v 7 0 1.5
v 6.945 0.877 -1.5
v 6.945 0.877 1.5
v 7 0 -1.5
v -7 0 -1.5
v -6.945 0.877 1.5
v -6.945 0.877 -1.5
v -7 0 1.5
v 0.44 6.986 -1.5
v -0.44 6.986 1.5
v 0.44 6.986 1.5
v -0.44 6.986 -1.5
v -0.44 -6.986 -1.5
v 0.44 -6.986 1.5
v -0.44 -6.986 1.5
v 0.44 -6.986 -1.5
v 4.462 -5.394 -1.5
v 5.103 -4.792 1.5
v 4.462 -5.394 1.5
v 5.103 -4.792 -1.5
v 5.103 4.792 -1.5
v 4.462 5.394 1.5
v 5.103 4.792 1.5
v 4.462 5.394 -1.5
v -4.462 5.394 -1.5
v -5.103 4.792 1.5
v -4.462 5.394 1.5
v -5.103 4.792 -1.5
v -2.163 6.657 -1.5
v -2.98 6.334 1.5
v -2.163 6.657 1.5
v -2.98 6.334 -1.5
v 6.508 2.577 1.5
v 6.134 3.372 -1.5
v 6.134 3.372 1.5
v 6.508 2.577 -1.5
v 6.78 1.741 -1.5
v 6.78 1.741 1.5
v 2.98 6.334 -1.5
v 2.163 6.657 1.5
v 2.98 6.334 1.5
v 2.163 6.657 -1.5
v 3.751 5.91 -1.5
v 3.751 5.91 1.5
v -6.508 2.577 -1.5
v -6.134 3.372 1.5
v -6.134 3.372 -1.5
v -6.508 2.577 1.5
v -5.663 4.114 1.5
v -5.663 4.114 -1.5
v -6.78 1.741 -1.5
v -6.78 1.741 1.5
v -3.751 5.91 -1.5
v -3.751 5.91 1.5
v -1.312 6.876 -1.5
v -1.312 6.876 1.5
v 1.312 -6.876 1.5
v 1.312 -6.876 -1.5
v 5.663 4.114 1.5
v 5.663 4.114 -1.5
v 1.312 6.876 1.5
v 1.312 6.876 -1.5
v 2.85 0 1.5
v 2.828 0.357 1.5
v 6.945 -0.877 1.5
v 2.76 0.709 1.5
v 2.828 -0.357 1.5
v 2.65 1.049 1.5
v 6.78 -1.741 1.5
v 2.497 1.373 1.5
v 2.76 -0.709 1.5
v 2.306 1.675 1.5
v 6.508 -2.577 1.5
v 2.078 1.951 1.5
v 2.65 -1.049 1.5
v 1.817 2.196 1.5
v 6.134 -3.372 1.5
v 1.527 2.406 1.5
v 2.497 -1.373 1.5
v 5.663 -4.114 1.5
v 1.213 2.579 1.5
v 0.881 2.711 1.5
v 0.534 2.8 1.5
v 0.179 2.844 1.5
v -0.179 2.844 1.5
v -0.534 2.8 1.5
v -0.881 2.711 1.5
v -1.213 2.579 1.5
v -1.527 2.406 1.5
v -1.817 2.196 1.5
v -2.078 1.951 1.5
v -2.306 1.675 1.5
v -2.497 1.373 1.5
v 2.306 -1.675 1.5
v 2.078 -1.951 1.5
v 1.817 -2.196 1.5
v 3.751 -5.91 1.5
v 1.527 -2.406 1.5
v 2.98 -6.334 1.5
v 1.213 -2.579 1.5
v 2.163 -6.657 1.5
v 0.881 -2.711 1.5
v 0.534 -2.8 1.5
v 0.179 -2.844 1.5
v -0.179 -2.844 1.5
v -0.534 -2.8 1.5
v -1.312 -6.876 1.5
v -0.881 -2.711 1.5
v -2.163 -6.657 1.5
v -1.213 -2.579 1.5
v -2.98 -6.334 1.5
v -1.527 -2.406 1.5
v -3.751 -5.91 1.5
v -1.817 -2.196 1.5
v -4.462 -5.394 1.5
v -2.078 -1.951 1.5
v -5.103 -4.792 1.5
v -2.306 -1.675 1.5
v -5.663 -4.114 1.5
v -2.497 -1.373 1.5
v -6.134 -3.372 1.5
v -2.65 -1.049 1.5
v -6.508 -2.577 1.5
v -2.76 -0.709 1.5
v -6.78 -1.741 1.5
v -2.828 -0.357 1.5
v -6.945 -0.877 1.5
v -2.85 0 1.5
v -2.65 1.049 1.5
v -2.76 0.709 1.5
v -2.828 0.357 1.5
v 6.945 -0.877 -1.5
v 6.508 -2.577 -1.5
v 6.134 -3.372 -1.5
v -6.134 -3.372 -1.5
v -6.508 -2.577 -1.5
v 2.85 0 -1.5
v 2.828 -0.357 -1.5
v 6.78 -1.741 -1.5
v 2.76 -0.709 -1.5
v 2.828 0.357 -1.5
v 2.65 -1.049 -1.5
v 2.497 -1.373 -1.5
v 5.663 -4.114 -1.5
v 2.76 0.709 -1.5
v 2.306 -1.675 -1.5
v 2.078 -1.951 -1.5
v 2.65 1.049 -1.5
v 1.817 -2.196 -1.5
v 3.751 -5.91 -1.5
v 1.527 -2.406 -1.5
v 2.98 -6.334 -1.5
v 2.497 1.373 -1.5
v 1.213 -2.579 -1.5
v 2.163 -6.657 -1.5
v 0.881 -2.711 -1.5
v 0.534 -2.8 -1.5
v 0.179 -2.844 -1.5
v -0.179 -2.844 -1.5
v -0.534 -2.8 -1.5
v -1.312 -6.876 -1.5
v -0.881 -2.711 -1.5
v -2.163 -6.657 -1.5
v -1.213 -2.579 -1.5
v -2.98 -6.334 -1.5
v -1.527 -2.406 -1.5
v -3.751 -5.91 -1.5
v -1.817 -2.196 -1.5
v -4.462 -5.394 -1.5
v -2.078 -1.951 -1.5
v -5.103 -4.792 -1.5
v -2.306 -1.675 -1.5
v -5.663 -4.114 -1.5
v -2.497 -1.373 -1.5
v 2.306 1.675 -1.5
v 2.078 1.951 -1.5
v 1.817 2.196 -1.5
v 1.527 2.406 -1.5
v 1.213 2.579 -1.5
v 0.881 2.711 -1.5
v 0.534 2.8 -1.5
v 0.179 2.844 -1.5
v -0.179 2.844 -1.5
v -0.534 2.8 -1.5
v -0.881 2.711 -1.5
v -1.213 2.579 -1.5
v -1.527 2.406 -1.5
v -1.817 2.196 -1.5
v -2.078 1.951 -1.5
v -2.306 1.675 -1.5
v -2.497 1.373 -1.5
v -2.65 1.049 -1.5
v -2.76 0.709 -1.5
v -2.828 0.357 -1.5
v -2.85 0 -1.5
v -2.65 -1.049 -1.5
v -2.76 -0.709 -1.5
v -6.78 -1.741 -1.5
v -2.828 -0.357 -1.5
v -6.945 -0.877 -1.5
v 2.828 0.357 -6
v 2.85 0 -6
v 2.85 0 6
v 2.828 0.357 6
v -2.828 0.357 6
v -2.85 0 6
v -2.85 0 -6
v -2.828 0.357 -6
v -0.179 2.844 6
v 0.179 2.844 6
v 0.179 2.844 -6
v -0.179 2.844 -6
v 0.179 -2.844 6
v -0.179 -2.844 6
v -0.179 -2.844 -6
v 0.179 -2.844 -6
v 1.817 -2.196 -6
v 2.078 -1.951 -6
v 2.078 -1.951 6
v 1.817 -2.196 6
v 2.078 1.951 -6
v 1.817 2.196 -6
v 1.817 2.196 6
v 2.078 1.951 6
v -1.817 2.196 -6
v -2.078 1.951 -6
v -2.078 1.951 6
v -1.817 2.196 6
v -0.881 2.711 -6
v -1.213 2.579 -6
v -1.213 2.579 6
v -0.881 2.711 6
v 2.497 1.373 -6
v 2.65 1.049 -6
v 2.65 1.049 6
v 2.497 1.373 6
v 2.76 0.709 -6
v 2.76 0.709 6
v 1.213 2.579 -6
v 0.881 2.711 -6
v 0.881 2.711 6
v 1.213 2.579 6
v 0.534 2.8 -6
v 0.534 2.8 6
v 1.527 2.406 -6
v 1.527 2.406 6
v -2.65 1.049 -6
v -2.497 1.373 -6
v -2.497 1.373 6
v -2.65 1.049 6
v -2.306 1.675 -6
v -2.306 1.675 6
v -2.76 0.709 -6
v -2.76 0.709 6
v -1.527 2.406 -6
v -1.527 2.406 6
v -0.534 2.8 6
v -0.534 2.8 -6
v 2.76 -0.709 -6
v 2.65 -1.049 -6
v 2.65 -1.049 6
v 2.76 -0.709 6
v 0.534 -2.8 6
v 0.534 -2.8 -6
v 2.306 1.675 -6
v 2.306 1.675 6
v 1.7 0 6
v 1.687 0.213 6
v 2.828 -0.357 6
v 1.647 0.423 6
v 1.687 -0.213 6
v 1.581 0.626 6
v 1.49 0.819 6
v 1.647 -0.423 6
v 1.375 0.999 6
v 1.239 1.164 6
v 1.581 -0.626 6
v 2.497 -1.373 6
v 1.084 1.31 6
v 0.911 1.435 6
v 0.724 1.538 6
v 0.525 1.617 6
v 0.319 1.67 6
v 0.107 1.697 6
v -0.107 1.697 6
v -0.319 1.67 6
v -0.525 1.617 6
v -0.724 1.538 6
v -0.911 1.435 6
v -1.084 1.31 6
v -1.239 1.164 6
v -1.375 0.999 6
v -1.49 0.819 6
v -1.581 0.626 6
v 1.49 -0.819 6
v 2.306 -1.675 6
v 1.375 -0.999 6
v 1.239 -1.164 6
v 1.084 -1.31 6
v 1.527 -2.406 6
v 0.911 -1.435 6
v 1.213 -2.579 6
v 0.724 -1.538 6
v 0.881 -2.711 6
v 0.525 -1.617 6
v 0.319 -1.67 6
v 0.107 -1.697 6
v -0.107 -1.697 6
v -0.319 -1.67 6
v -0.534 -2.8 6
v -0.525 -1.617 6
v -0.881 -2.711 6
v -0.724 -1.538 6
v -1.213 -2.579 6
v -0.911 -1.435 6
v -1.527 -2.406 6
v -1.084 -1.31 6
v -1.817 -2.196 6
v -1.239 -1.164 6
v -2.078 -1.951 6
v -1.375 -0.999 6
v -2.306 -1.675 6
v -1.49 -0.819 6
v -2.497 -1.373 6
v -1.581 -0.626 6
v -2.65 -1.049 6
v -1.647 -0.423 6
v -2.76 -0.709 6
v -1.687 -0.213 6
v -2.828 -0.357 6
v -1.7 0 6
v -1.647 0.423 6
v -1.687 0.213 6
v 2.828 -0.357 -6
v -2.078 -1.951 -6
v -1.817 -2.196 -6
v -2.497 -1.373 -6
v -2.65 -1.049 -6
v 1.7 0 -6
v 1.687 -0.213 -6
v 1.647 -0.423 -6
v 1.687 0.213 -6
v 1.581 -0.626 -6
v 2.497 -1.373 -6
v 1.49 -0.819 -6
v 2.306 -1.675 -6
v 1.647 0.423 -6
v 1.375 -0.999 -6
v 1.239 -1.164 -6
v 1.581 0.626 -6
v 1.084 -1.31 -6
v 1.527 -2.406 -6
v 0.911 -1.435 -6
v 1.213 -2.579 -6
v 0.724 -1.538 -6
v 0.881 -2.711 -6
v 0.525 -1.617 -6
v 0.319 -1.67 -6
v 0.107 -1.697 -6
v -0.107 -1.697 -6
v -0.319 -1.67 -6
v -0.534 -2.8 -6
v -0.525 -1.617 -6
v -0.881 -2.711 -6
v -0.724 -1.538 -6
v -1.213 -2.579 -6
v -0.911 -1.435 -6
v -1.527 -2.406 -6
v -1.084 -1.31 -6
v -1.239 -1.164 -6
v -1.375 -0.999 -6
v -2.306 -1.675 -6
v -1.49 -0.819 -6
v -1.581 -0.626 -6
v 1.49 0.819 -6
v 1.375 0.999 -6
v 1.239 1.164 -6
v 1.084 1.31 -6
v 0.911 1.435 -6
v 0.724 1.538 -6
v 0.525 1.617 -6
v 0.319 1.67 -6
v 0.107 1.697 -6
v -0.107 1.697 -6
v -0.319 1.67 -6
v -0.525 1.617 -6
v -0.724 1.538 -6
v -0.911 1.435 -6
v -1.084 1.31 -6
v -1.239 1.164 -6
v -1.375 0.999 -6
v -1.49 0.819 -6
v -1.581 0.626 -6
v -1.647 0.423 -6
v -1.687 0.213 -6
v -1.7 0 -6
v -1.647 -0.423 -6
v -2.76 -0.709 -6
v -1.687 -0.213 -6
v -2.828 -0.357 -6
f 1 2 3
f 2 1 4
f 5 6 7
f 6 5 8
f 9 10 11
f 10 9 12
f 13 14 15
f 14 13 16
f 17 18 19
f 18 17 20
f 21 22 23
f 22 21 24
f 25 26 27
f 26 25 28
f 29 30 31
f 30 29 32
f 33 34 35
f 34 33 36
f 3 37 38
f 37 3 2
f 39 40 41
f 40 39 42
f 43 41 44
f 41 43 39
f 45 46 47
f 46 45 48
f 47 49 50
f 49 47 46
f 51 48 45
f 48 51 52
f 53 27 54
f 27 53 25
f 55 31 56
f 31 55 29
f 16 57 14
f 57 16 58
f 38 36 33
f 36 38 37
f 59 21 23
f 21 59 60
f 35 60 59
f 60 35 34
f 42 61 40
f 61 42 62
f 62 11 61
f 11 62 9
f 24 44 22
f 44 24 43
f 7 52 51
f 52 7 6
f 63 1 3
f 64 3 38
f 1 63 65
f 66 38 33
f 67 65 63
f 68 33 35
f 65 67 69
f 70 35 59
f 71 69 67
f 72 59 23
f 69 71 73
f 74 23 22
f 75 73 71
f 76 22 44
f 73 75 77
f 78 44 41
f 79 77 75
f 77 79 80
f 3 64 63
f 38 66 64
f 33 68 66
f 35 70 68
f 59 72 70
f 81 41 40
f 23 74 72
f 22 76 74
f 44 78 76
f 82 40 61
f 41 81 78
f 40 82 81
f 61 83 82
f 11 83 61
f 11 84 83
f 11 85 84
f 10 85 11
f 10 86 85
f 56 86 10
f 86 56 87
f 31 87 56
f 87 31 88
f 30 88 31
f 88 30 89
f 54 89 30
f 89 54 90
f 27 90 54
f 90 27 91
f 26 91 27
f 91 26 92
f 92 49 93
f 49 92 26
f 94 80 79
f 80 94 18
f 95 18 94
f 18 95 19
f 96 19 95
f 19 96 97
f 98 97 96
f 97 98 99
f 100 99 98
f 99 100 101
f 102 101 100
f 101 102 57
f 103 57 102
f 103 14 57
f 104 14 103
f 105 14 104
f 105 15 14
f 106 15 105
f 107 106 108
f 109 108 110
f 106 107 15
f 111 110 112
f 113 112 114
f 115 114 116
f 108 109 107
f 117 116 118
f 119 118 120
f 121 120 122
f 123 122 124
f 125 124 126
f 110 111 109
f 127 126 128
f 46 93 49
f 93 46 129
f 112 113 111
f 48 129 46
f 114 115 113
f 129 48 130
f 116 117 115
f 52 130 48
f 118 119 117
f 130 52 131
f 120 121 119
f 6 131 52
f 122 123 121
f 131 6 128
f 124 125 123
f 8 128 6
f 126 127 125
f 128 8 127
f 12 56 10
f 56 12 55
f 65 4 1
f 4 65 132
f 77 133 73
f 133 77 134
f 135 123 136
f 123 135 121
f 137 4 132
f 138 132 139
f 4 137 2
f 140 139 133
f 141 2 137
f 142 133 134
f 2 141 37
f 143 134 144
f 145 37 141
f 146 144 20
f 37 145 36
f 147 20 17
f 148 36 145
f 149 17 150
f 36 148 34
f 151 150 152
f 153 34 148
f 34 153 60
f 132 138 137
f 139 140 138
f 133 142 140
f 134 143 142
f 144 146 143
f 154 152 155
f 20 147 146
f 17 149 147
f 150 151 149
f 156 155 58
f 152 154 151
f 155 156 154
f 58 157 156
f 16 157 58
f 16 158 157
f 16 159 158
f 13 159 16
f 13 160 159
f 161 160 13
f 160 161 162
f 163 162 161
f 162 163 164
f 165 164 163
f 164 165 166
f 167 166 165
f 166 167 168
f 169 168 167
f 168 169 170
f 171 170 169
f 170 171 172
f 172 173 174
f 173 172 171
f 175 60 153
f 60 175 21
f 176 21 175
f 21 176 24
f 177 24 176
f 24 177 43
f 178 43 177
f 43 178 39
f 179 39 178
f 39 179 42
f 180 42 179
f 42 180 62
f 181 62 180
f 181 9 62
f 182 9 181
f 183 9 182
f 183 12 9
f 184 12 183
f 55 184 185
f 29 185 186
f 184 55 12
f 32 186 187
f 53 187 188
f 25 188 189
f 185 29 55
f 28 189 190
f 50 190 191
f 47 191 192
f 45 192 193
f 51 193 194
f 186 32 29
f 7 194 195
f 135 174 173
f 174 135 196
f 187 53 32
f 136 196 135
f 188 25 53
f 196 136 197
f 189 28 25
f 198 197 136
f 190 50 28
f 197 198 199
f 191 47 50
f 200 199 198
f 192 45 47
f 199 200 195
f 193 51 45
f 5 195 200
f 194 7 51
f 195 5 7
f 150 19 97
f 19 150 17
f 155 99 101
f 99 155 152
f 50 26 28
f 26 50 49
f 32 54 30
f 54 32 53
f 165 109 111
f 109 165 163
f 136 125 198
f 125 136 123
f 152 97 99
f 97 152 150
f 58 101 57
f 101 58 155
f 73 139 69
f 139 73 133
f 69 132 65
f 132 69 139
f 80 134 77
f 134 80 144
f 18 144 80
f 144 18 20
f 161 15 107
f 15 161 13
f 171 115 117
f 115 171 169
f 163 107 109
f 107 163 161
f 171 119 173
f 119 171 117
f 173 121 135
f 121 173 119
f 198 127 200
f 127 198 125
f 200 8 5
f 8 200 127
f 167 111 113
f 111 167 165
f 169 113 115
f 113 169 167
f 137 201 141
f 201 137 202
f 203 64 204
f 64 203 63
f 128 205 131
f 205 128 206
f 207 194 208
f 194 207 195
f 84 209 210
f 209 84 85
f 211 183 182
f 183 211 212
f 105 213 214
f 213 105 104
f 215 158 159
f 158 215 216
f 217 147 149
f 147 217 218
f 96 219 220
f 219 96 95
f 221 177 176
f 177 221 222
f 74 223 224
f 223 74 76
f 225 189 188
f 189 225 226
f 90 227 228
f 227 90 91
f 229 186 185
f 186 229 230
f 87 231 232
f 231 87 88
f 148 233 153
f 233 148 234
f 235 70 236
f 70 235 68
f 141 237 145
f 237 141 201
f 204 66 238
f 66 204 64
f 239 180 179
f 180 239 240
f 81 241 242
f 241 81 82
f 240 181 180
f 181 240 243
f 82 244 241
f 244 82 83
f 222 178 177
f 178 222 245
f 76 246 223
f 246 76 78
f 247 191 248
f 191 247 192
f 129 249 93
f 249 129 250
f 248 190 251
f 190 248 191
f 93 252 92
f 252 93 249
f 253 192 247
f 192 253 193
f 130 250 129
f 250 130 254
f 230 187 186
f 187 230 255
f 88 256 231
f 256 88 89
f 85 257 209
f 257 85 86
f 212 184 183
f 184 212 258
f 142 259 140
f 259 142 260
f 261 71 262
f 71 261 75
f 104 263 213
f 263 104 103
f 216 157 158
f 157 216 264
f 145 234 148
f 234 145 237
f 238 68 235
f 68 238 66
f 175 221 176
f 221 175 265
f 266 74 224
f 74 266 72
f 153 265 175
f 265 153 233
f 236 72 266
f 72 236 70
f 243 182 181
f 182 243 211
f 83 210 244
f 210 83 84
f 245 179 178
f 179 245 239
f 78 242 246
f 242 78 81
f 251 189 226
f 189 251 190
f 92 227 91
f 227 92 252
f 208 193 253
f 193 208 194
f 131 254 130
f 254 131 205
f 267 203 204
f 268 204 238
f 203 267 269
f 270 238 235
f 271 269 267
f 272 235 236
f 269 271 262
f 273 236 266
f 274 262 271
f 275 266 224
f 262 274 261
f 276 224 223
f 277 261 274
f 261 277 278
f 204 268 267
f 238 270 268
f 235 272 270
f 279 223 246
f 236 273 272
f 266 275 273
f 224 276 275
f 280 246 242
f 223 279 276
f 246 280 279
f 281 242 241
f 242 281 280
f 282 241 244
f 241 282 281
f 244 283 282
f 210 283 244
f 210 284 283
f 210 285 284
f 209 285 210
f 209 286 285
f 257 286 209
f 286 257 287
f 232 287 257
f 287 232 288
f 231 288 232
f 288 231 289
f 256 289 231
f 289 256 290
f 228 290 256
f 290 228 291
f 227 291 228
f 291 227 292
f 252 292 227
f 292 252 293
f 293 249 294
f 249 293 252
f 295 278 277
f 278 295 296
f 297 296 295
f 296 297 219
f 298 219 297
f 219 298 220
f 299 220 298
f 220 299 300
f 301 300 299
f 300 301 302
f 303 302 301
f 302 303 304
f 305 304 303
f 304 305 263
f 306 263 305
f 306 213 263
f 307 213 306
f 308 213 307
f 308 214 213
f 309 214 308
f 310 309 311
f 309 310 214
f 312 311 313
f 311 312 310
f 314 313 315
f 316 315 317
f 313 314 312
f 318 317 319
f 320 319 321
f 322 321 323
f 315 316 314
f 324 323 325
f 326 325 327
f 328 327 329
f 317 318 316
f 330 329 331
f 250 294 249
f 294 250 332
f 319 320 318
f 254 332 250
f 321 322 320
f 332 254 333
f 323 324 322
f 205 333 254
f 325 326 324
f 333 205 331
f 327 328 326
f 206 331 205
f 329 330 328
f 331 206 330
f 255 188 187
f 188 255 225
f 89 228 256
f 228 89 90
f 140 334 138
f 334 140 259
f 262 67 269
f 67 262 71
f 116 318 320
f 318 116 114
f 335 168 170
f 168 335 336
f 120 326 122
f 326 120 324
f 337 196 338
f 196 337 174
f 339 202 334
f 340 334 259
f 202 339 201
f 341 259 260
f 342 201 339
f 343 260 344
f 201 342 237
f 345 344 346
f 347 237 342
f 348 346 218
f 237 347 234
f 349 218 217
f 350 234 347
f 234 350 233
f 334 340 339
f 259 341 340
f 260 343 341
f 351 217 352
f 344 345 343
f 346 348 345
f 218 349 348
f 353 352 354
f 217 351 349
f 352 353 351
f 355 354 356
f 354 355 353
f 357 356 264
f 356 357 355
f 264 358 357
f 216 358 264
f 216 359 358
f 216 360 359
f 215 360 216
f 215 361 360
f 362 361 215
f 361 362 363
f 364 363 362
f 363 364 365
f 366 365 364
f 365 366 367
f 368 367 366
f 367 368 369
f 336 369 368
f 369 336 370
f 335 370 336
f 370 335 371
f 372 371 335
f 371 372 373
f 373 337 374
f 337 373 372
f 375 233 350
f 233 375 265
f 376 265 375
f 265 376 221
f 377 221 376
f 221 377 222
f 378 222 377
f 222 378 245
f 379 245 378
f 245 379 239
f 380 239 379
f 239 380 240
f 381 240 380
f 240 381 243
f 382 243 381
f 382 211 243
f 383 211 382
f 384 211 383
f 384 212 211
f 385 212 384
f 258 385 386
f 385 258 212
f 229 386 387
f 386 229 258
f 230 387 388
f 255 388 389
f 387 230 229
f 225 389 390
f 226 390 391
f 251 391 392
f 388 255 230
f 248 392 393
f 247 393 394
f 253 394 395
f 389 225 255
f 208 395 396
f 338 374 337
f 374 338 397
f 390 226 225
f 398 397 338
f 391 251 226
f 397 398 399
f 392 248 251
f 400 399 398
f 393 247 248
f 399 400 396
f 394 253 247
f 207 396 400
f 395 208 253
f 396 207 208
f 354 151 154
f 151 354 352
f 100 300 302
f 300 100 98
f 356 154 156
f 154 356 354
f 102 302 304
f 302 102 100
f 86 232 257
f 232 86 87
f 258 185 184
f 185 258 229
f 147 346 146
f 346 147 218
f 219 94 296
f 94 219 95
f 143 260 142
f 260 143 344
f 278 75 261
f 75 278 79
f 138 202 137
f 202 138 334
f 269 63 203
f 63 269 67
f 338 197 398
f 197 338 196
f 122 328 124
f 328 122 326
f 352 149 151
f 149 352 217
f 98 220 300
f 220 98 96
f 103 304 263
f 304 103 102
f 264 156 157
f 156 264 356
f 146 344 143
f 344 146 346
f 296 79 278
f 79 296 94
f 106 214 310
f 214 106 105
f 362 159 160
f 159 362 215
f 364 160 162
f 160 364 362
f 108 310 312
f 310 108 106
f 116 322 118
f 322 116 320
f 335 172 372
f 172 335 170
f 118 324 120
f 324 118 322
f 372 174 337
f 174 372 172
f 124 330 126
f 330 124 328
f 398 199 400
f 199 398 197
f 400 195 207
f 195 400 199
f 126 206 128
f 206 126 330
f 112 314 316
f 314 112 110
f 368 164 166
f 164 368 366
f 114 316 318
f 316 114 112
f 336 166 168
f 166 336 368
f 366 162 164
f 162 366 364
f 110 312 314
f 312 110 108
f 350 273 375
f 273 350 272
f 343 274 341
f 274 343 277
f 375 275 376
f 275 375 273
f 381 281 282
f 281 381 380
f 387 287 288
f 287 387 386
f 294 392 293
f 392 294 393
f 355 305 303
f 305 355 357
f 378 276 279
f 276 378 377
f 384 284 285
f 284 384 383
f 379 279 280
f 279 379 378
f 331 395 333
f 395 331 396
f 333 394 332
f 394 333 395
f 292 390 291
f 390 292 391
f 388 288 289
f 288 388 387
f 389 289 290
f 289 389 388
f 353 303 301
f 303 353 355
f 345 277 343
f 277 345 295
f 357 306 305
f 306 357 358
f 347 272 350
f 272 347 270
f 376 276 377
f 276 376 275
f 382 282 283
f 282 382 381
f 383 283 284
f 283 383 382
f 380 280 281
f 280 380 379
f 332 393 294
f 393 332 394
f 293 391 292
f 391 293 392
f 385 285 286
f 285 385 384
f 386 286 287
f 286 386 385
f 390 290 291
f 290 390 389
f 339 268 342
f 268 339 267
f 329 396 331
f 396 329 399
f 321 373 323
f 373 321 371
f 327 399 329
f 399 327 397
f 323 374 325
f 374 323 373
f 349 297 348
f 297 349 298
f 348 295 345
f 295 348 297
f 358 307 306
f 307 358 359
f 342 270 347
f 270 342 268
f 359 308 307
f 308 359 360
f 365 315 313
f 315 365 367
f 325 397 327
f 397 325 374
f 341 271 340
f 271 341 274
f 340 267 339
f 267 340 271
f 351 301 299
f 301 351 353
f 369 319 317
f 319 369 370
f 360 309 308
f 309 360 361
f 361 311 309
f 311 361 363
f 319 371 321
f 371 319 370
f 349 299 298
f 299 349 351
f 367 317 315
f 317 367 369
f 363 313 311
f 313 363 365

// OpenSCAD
$fn = 50;


difference() {
	union() {
		translate(v = [0, 0, -1.5000000000]) {
			rotate(a = [0, 0, 0]) {
				cylinder(h = 3, r = 7.0000000000);
			}
		}
		translate(v = [0, 0, -6.0000000000]) {
			rotate(a = [0, 0, 0]) {
				cylinder(h = 12, r = 2.8500000000);
			}
		}
	}
	union() {
		translate(v = [0, 0, -125.0000000000]) {
			rotate(a = [0, 0, 0]) {
				cylinder(h = 250, r = 1.7000000000);
			}
		}
	}
}
